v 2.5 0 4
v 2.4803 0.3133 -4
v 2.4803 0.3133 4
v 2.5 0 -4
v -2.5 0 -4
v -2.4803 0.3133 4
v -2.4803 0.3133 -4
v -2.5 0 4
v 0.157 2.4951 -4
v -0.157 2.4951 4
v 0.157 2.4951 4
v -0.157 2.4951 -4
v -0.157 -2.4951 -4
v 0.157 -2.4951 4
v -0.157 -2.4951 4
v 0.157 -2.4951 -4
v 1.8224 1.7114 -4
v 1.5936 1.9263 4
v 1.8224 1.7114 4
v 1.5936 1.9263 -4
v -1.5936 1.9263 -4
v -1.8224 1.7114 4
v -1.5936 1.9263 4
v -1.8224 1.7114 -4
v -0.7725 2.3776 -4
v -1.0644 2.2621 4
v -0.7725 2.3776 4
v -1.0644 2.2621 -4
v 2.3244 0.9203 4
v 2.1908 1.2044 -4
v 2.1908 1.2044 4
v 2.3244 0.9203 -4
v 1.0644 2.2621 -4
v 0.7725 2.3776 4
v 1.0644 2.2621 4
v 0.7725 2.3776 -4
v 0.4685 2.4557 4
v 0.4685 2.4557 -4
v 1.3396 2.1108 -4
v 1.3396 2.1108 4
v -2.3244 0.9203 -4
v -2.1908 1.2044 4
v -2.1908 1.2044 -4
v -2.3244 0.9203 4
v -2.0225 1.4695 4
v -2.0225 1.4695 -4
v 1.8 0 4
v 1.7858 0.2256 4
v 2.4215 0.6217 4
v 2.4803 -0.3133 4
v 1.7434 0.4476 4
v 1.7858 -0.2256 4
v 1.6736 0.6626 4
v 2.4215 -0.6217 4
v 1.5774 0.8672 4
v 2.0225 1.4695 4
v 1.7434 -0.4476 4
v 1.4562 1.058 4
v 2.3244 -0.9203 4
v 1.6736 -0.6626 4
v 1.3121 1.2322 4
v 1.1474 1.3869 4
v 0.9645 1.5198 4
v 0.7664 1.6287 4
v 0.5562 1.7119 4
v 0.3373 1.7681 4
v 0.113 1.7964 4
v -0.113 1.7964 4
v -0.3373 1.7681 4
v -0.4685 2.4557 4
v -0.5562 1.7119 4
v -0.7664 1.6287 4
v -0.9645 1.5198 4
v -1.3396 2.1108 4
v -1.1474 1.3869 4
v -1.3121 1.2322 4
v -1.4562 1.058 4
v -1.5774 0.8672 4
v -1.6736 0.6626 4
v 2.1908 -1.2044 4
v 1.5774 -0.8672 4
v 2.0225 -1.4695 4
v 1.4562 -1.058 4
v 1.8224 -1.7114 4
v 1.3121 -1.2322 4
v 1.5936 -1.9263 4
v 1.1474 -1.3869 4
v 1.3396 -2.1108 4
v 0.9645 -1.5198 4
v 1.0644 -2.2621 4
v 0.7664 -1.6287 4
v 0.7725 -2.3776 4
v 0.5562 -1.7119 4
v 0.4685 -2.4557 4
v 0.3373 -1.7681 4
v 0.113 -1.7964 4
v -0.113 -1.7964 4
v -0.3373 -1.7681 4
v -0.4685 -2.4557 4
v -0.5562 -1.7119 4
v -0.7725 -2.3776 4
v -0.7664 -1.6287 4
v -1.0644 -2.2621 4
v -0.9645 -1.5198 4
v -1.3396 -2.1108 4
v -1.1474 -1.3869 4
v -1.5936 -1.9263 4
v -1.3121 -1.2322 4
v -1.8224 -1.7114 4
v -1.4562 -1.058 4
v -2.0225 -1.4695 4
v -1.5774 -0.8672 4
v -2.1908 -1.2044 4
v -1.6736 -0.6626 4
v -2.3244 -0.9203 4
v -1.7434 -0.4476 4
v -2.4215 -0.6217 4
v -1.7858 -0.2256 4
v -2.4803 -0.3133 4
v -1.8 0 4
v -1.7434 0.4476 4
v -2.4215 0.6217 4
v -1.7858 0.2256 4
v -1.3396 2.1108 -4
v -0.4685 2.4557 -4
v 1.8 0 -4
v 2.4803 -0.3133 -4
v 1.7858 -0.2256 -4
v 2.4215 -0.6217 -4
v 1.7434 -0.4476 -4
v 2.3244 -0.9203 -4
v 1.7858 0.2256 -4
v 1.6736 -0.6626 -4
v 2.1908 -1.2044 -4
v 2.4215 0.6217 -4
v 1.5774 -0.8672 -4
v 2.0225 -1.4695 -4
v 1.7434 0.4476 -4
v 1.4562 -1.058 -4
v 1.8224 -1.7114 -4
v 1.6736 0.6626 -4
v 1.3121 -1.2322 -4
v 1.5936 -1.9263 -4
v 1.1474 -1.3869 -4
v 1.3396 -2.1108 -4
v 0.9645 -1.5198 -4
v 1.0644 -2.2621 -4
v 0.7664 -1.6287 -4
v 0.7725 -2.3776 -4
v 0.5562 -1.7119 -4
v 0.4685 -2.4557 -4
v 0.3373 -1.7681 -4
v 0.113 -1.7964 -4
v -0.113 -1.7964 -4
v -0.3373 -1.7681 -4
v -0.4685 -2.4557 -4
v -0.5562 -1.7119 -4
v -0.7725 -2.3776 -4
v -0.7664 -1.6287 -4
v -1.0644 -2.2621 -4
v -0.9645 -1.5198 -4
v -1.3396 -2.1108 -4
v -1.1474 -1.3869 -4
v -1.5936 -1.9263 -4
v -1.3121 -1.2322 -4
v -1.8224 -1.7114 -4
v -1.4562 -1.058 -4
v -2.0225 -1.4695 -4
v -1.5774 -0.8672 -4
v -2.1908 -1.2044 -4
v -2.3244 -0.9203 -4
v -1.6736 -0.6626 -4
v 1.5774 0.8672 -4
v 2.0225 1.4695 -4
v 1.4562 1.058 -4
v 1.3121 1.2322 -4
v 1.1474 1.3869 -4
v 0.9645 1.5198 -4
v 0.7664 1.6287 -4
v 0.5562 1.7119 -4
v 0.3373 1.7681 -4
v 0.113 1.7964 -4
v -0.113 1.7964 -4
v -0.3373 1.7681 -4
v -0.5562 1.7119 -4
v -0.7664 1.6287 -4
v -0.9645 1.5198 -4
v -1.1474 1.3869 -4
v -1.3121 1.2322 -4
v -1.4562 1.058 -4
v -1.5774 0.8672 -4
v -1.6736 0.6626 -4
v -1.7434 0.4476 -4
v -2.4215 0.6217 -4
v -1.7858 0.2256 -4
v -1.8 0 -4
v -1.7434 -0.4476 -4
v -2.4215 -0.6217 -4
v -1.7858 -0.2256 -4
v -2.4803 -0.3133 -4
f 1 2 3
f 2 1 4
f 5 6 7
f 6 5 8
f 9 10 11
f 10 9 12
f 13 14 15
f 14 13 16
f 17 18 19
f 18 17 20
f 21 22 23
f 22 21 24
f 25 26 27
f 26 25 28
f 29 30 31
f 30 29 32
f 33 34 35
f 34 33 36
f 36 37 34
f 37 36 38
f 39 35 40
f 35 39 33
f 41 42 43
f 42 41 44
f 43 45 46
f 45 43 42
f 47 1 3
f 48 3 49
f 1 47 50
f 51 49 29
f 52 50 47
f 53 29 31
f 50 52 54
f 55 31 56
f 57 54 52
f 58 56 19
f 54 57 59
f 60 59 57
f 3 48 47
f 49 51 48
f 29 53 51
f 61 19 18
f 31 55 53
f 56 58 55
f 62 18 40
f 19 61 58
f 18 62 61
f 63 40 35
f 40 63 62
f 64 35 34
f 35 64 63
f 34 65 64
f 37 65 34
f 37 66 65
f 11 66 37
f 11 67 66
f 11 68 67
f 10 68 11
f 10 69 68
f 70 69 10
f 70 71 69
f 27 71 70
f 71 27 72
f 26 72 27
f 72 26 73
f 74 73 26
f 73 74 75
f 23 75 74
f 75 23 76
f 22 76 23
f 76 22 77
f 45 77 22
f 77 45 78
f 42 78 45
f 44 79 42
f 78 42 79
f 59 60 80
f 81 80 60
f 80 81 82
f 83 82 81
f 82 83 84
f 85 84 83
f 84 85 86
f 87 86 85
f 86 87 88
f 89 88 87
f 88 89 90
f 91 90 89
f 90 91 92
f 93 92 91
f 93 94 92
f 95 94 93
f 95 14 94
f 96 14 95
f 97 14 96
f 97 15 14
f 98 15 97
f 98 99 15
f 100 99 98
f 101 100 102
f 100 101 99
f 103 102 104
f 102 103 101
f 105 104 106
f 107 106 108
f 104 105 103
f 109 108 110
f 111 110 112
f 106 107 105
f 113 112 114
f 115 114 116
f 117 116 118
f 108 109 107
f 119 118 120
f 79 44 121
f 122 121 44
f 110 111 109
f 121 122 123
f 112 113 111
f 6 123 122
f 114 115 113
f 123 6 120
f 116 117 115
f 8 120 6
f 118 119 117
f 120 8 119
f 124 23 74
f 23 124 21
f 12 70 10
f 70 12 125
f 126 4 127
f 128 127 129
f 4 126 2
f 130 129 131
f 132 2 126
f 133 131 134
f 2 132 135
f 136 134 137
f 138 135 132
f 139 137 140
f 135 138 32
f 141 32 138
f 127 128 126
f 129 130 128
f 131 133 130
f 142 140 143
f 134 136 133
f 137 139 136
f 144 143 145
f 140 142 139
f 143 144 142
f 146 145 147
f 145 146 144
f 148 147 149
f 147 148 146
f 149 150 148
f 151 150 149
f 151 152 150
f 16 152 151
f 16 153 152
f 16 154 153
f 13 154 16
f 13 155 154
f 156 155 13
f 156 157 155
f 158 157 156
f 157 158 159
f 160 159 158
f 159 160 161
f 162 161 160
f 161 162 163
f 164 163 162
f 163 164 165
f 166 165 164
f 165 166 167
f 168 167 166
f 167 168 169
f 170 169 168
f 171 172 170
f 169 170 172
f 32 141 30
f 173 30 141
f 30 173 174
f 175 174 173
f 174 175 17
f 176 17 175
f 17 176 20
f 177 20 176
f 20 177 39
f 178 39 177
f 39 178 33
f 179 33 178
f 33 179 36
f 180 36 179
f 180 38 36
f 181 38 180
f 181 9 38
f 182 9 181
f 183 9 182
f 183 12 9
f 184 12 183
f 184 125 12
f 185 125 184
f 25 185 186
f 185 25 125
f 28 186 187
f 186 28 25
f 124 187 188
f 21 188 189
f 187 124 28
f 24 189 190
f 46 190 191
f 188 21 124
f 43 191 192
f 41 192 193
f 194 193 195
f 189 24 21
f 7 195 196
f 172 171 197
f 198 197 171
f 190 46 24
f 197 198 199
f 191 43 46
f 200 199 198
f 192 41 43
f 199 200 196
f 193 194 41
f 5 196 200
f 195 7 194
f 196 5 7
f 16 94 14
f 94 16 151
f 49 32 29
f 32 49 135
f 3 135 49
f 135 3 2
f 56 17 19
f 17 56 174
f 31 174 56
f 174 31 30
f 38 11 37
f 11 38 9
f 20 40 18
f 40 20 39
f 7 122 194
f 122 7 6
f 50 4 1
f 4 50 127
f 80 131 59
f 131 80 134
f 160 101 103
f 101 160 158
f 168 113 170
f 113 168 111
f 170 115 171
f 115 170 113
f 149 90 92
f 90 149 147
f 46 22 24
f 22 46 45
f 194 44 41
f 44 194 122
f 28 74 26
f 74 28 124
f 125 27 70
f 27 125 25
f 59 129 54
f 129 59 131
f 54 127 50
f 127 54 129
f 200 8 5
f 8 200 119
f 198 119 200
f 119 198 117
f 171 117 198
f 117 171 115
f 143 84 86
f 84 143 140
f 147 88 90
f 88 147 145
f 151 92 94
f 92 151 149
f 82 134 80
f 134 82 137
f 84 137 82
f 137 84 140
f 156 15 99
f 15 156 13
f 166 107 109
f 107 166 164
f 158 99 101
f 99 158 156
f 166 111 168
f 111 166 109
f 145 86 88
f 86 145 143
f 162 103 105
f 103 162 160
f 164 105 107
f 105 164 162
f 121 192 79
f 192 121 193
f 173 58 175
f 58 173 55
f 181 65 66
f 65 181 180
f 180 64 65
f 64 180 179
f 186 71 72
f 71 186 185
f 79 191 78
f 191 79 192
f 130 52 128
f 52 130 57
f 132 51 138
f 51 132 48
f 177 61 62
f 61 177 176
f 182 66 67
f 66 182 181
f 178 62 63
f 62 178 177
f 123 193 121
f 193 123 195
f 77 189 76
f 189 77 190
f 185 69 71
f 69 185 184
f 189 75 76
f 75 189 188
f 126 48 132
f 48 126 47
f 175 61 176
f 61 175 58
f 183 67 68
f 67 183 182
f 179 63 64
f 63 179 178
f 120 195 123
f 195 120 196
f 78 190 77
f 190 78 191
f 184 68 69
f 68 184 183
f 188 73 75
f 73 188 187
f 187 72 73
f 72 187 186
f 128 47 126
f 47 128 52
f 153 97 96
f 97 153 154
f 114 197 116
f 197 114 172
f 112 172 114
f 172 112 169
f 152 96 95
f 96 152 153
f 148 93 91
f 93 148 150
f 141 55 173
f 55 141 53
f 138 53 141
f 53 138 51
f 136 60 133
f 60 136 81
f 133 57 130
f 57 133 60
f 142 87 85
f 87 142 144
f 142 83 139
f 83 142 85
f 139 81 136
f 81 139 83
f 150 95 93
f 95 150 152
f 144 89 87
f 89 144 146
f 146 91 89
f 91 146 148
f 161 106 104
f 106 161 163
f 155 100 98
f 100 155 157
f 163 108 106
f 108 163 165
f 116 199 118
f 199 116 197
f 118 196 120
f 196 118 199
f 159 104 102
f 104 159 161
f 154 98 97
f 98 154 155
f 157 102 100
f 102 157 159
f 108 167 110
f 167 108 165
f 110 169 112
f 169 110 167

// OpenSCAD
$fn = 50;


difference() {
	union() {
		translate(v = [0, 0, -4.0000000000]) {
			cylinder(h = 8, r = 2.5000000000);
		}
	}
	union() {
		#translate(v = [0, 0, -100.0000000000]) {
			cylinder(h = 200, r = 1.8000000000);
		}
	}
}
